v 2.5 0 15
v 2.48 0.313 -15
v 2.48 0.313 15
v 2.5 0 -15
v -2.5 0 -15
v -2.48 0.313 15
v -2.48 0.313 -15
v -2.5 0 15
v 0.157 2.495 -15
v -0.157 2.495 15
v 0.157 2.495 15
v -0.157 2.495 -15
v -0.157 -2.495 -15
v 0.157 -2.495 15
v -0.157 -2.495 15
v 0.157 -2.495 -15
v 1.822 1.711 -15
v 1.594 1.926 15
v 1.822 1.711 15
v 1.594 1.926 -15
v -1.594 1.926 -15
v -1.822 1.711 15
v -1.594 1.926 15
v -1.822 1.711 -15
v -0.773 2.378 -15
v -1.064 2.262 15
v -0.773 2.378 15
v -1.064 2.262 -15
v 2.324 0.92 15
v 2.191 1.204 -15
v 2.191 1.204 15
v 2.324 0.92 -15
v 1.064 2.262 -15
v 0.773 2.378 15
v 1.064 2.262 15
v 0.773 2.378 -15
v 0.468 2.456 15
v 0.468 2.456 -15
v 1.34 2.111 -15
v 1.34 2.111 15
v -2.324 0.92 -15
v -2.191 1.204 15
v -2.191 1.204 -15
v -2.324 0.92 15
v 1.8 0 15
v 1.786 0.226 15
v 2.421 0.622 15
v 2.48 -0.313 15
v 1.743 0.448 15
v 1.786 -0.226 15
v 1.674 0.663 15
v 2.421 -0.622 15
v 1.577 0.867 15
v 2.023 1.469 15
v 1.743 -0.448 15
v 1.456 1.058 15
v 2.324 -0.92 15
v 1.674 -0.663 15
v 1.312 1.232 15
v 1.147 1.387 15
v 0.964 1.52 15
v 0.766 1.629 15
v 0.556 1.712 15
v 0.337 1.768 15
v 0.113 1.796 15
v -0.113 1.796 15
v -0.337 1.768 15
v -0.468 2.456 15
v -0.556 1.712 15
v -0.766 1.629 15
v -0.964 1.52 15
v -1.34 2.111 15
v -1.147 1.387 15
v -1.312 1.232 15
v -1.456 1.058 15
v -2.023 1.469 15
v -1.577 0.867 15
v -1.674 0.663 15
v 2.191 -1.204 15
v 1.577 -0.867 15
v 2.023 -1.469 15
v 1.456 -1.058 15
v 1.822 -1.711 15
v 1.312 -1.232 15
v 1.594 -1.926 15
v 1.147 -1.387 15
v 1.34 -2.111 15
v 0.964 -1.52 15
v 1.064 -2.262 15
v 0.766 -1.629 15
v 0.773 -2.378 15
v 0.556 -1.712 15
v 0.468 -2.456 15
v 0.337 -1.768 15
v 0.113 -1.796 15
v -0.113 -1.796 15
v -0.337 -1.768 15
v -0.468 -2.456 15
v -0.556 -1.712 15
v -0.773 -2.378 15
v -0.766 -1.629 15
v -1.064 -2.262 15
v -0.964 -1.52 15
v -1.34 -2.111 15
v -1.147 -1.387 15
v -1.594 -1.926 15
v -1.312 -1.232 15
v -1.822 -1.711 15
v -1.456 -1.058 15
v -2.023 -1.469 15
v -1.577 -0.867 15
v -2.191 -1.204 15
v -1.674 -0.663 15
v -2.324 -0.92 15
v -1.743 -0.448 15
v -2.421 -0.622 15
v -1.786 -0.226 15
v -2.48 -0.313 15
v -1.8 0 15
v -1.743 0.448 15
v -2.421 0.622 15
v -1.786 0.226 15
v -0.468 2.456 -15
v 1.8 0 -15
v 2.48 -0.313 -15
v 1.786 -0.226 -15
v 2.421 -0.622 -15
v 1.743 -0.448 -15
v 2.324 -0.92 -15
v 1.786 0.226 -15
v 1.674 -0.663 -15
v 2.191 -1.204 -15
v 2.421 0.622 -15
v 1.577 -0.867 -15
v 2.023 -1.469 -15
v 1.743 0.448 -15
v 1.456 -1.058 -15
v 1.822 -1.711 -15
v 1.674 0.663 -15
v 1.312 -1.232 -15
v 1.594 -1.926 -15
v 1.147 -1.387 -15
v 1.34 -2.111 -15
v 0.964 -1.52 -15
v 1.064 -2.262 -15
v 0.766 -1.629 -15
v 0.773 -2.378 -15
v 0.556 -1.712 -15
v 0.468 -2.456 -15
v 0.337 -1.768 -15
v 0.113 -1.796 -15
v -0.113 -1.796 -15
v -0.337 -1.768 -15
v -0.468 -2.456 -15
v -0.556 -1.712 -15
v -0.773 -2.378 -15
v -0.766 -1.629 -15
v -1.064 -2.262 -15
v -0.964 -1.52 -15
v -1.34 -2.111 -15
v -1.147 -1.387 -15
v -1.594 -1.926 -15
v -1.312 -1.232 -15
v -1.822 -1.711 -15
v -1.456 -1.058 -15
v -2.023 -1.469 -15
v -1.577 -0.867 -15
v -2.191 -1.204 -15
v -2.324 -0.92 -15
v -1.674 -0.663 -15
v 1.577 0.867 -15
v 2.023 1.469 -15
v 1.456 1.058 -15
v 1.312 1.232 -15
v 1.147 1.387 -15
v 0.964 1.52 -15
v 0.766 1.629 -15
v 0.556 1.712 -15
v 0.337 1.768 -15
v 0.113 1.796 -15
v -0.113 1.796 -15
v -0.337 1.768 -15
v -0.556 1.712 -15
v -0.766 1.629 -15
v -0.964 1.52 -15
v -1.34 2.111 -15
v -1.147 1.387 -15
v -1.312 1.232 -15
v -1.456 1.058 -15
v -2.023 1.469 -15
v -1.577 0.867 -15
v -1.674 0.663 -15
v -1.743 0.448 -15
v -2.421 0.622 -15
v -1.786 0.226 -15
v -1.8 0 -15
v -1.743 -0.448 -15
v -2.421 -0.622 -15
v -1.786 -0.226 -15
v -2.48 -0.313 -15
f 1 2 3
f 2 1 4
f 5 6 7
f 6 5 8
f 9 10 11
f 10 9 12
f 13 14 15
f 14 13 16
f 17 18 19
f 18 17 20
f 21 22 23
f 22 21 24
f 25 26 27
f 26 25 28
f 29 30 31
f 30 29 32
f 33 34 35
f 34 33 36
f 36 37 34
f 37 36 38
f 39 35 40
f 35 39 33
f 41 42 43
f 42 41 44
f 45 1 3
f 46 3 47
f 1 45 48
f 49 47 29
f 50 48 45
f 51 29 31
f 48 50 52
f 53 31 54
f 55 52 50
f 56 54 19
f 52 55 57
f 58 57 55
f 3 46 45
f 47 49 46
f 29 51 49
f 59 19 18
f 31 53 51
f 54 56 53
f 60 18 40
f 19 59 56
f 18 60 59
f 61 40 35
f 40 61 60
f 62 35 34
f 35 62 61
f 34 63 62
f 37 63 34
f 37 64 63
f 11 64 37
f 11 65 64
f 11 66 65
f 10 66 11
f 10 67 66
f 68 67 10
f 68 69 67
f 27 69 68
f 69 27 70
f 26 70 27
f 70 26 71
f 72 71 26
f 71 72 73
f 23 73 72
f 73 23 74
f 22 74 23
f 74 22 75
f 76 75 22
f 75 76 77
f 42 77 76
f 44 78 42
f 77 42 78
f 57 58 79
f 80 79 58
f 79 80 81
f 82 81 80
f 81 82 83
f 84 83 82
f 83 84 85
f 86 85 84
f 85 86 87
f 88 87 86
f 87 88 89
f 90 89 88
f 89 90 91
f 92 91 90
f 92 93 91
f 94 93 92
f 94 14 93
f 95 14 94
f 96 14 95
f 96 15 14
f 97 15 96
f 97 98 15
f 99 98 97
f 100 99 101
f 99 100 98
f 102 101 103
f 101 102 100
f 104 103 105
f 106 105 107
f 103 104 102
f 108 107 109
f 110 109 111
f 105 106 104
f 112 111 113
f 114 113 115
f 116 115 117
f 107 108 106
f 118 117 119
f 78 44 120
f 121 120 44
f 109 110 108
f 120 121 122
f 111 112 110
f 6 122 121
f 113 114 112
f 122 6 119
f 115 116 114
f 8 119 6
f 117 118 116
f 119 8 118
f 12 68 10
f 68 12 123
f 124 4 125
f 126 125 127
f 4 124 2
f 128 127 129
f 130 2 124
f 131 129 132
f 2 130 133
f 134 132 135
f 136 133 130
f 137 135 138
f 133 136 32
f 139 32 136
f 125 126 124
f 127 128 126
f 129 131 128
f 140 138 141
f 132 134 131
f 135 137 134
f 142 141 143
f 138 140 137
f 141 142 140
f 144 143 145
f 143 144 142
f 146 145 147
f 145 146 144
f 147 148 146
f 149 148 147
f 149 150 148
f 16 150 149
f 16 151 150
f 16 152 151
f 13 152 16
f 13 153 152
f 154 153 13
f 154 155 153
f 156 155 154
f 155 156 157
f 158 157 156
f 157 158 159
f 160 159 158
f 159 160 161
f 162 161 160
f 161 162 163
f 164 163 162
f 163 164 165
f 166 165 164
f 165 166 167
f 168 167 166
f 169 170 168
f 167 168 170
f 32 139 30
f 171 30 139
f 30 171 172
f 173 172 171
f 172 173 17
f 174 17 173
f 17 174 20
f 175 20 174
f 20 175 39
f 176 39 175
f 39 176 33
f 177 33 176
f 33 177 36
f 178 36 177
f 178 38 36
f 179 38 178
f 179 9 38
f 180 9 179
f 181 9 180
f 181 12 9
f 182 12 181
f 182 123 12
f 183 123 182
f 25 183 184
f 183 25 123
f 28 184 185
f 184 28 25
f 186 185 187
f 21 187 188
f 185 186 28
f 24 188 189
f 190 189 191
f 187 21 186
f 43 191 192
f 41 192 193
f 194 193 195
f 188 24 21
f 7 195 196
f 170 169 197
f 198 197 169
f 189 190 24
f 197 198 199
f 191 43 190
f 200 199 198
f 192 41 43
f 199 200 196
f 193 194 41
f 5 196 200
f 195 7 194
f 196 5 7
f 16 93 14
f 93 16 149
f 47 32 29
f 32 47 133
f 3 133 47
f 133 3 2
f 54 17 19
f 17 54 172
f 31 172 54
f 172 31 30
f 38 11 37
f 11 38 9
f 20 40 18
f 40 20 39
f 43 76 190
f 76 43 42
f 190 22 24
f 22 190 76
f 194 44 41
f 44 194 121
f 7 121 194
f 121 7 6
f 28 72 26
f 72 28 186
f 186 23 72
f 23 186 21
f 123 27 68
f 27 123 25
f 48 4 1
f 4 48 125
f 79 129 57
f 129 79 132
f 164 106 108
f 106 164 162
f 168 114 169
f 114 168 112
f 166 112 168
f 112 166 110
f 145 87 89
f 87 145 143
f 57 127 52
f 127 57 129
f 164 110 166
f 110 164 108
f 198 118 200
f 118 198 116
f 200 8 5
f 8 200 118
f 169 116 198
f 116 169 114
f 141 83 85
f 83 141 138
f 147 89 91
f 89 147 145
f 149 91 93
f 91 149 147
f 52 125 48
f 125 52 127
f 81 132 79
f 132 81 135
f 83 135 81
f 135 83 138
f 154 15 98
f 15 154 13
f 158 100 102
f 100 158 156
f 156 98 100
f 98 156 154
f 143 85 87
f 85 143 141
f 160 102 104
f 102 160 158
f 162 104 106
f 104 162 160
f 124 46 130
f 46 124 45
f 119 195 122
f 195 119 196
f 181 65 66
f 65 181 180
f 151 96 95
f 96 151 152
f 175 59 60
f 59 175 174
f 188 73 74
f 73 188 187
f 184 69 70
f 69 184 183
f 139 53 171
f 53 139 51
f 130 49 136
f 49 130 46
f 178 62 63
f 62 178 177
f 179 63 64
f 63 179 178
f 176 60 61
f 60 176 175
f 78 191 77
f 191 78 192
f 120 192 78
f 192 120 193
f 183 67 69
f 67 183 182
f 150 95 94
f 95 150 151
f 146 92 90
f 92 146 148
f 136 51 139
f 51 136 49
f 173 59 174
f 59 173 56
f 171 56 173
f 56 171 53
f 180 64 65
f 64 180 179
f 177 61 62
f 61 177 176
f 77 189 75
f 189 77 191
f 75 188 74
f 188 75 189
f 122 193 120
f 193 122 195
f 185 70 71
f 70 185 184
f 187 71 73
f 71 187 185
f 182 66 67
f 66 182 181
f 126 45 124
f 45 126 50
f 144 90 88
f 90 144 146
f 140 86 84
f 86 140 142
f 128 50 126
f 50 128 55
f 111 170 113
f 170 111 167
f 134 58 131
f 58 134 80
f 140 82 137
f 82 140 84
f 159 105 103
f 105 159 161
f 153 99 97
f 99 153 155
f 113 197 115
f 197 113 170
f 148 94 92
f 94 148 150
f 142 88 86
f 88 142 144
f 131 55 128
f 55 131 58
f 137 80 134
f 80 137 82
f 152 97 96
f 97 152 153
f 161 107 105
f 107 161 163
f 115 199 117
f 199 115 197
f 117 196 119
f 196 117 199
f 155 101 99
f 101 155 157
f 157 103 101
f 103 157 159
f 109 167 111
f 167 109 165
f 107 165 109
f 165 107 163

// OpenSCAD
$fn = 50;


difference() {
	union() {
		translate(v = [0, 0, -15.0000000000]) {
			cylinder(h = 30, r = 2.5000000000);
		}
	}
	union() {
		translate(v = [0, 0, -100.0000000000]) {
			cylinder(h = 200, r = 1.8000000000);
		}
	}
}
